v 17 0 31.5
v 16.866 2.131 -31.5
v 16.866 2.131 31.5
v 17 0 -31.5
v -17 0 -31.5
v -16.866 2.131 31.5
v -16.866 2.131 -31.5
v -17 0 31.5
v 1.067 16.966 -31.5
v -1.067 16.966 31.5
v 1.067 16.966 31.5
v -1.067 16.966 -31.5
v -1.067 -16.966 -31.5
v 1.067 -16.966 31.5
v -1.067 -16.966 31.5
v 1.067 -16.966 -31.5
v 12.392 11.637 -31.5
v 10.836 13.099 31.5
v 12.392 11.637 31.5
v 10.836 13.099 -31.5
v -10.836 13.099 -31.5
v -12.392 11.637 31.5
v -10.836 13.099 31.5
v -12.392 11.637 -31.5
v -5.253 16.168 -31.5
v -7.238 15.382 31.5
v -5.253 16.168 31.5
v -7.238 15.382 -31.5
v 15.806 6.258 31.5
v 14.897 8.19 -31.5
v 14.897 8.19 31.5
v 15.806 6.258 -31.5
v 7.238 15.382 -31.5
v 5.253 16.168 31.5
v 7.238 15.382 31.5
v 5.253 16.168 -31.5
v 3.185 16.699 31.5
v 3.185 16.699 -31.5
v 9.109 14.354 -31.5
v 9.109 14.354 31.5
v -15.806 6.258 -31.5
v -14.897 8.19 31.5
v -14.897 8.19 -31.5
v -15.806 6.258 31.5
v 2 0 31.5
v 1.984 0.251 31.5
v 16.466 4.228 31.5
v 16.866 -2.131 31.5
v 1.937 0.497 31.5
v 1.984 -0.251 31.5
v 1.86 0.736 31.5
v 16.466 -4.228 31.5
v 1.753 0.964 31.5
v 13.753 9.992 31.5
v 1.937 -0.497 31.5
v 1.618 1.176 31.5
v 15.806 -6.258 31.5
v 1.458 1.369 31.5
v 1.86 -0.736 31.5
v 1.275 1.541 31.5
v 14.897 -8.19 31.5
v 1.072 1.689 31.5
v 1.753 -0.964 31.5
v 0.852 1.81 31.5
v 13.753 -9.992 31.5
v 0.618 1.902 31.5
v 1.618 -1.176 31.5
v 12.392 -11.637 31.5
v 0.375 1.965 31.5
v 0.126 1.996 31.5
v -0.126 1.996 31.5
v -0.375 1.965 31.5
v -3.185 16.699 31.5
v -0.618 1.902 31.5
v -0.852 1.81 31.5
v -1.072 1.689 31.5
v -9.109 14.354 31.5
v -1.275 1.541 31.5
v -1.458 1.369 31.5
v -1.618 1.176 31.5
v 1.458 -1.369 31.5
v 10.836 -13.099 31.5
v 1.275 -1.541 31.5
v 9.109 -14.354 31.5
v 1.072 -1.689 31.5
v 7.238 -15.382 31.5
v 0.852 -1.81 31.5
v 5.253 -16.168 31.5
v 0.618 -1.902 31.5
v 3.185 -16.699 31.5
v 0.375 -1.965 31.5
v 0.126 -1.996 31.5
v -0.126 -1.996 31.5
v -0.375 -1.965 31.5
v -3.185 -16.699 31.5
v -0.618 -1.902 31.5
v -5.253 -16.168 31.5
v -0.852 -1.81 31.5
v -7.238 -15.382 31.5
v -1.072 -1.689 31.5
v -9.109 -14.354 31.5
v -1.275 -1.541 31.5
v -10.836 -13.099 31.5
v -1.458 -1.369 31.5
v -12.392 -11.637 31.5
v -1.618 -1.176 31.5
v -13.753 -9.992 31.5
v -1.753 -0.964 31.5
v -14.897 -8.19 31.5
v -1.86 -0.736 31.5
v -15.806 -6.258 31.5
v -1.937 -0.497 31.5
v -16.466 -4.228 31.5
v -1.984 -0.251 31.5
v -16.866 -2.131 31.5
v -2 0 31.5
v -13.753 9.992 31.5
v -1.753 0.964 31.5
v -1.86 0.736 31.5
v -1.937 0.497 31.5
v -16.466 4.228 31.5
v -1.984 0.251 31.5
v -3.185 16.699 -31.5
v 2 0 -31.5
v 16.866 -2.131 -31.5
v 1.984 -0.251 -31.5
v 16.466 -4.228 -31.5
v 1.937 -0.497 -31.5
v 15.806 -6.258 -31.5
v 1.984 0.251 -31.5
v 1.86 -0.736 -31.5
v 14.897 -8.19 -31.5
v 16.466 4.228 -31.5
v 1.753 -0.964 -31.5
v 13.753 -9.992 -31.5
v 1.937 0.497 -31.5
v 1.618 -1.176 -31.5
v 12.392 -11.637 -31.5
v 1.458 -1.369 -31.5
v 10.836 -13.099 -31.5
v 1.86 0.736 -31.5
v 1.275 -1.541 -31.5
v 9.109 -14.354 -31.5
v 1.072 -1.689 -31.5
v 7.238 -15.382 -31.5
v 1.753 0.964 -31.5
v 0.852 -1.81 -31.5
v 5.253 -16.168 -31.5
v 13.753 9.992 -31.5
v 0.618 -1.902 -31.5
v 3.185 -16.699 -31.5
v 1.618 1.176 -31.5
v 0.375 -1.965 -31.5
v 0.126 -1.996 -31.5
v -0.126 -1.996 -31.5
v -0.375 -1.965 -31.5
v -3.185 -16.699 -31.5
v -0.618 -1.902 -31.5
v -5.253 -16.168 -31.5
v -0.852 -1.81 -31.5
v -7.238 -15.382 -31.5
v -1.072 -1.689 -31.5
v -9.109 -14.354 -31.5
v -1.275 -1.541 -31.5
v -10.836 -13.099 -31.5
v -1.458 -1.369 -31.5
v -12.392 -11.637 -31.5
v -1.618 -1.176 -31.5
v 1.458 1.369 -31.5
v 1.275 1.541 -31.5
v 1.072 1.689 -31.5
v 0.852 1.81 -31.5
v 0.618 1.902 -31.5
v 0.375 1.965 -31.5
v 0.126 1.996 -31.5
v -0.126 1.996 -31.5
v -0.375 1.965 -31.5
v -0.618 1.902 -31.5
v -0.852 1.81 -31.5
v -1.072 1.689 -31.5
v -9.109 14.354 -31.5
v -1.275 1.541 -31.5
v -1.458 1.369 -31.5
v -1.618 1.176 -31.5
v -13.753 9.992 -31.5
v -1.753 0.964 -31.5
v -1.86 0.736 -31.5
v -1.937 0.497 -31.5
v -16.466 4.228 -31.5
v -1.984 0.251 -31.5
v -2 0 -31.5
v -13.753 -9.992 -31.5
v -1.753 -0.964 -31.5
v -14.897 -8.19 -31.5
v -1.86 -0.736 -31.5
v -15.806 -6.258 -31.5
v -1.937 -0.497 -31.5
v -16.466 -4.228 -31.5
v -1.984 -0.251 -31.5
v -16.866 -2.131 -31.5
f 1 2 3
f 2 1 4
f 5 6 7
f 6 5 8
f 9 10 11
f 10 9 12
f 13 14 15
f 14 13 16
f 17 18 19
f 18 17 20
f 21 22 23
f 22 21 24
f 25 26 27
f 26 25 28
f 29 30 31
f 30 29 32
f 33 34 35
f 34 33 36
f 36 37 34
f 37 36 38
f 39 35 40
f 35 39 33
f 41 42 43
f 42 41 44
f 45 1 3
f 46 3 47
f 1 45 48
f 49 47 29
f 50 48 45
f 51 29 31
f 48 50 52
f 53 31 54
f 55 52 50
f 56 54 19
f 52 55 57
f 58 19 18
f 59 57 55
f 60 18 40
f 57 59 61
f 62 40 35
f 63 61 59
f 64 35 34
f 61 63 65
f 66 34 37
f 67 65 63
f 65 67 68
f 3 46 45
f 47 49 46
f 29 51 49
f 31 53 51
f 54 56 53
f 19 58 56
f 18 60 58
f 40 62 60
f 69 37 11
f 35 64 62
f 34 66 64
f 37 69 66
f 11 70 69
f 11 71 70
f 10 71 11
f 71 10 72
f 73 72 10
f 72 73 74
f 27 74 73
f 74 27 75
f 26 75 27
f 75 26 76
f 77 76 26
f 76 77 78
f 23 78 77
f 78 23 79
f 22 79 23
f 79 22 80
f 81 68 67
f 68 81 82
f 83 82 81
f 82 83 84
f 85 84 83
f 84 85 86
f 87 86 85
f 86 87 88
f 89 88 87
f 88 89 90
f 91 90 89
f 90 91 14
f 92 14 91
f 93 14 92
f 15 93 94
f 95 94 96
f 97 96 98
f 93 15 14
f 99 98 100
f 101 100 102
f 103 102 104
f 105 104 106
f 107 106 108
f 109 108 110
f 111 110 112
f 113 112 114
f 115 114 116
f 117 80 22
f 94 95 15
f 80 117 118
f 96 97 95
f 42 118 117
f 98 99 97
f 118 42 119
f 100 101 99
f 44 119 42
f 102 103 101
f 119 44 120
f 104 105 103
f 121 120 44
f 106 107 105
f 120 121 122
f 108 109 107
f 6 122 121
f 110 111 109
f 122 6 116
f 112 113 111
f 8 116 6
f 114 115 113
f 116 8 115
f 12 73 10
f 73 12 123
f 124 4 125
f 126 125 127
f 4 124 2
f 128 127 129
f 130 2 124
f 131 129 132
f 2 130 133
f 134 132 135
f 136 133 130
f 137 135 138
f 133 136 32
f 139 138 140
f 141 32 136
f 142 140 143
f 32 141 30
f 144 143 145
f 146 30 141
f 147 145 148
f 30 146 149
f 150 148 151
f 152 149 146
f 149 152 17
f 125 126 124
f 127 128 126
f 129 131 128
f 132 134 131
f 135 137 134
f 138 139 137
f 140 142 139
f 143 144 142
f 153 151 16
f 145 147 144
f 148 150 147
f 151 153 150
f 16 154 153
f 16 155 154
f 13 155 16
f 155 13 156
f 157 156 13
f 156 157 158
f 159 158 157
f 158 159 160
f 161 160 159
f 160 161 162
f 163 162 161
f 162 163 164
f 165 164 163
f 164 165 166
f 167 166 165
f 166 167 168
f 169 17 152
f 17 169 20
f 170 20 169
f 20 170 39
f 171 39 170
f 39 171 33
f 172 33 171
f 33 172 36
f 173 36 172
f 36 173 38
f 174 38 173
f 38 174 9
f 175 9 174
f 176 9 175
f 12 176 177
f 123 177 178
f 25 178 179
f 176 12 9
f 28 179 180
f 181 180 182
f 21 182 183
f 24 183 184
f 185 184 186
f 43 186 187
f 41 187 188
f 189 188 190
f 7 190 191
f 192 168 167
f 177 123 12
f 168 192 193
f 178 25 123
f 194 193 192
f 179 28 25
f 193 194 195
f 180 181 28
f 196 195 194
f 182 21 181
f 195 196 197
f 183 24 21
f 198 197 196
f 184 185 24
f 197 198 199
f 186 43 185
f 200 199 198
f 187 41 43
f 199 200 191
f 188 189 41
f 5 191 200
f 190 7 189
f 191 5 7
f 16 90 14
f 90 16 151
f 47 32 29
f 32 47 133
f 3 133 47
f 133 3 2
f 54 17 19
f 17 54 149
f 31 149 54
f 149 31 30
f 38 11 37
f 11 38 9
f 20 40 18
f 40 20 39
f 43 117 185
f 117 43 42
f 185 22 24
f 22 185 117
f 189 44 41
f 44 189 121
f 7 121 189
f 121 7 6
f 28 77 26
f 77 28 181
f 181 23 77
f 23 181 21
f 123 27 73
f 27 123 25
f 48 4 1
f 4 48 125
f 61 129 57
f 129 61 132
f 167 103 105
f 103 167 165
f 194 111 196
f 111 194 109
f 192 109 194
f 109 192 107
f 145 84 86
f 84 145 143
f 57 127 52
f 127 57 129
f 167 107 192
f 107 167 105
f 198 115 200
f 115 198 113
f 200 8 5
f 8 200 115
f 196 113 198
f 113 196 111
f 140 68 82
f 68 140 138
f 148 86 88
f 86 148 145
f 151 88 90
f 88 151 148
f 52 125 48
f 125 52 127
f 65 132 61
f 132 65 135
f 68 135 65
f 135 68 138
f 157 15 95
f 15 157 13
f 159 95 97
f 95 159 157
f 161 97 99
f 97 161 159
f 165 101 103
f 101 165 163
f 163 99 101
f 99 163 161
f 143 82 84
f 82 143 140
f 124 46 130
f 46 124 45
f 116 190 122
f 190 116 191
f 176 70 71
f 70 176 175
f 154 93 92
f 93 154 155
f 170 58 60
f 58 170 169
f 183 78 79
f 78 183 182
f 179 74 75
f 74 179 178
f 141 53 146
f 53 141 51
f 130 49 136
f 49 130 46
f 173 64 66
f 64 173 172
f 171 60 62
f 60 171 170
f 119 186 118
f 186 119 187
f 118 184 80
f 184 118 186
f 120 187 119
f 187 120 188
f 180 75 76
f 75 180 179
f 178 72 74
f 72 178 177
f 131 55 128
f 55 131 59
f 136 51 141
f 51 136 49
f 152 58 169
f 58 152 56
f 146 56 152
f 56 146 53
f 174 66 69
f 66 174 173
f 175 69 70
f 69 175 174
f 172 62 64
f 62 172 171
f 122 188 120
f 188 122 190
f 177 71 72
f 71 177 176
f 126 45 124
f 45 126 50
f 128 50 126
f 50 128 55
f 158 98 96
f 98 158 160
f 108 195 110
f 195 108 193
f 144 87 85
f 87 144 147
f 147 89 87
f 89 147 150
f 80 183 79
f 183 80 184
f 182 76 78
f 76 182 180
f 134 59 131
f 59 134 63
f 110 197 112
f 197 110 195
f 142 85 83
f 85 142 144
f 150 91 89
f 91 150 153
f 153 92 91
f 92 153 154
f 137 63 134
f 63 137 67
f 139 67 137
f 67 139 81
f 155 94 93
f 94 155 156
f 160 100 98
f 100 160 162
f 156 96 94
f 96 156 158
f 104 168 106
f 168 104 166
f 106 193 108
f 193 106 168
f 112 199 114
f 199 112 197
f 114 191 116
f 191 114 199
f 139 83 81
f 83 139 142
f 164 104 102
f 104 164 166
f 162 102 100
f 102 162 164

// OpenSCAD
$fn = 50;


difference() {
	union() {
		translate(v = [0, 0, -31.5000000000]) {
			cylinder(h = 63, r = 17.0000000000);
		}
	}
	union() {
		translate(v = [0, 0, -100.0000000000]) {
			cylinder(h = 200, r = 2.0000000000);
		}
	}
}
